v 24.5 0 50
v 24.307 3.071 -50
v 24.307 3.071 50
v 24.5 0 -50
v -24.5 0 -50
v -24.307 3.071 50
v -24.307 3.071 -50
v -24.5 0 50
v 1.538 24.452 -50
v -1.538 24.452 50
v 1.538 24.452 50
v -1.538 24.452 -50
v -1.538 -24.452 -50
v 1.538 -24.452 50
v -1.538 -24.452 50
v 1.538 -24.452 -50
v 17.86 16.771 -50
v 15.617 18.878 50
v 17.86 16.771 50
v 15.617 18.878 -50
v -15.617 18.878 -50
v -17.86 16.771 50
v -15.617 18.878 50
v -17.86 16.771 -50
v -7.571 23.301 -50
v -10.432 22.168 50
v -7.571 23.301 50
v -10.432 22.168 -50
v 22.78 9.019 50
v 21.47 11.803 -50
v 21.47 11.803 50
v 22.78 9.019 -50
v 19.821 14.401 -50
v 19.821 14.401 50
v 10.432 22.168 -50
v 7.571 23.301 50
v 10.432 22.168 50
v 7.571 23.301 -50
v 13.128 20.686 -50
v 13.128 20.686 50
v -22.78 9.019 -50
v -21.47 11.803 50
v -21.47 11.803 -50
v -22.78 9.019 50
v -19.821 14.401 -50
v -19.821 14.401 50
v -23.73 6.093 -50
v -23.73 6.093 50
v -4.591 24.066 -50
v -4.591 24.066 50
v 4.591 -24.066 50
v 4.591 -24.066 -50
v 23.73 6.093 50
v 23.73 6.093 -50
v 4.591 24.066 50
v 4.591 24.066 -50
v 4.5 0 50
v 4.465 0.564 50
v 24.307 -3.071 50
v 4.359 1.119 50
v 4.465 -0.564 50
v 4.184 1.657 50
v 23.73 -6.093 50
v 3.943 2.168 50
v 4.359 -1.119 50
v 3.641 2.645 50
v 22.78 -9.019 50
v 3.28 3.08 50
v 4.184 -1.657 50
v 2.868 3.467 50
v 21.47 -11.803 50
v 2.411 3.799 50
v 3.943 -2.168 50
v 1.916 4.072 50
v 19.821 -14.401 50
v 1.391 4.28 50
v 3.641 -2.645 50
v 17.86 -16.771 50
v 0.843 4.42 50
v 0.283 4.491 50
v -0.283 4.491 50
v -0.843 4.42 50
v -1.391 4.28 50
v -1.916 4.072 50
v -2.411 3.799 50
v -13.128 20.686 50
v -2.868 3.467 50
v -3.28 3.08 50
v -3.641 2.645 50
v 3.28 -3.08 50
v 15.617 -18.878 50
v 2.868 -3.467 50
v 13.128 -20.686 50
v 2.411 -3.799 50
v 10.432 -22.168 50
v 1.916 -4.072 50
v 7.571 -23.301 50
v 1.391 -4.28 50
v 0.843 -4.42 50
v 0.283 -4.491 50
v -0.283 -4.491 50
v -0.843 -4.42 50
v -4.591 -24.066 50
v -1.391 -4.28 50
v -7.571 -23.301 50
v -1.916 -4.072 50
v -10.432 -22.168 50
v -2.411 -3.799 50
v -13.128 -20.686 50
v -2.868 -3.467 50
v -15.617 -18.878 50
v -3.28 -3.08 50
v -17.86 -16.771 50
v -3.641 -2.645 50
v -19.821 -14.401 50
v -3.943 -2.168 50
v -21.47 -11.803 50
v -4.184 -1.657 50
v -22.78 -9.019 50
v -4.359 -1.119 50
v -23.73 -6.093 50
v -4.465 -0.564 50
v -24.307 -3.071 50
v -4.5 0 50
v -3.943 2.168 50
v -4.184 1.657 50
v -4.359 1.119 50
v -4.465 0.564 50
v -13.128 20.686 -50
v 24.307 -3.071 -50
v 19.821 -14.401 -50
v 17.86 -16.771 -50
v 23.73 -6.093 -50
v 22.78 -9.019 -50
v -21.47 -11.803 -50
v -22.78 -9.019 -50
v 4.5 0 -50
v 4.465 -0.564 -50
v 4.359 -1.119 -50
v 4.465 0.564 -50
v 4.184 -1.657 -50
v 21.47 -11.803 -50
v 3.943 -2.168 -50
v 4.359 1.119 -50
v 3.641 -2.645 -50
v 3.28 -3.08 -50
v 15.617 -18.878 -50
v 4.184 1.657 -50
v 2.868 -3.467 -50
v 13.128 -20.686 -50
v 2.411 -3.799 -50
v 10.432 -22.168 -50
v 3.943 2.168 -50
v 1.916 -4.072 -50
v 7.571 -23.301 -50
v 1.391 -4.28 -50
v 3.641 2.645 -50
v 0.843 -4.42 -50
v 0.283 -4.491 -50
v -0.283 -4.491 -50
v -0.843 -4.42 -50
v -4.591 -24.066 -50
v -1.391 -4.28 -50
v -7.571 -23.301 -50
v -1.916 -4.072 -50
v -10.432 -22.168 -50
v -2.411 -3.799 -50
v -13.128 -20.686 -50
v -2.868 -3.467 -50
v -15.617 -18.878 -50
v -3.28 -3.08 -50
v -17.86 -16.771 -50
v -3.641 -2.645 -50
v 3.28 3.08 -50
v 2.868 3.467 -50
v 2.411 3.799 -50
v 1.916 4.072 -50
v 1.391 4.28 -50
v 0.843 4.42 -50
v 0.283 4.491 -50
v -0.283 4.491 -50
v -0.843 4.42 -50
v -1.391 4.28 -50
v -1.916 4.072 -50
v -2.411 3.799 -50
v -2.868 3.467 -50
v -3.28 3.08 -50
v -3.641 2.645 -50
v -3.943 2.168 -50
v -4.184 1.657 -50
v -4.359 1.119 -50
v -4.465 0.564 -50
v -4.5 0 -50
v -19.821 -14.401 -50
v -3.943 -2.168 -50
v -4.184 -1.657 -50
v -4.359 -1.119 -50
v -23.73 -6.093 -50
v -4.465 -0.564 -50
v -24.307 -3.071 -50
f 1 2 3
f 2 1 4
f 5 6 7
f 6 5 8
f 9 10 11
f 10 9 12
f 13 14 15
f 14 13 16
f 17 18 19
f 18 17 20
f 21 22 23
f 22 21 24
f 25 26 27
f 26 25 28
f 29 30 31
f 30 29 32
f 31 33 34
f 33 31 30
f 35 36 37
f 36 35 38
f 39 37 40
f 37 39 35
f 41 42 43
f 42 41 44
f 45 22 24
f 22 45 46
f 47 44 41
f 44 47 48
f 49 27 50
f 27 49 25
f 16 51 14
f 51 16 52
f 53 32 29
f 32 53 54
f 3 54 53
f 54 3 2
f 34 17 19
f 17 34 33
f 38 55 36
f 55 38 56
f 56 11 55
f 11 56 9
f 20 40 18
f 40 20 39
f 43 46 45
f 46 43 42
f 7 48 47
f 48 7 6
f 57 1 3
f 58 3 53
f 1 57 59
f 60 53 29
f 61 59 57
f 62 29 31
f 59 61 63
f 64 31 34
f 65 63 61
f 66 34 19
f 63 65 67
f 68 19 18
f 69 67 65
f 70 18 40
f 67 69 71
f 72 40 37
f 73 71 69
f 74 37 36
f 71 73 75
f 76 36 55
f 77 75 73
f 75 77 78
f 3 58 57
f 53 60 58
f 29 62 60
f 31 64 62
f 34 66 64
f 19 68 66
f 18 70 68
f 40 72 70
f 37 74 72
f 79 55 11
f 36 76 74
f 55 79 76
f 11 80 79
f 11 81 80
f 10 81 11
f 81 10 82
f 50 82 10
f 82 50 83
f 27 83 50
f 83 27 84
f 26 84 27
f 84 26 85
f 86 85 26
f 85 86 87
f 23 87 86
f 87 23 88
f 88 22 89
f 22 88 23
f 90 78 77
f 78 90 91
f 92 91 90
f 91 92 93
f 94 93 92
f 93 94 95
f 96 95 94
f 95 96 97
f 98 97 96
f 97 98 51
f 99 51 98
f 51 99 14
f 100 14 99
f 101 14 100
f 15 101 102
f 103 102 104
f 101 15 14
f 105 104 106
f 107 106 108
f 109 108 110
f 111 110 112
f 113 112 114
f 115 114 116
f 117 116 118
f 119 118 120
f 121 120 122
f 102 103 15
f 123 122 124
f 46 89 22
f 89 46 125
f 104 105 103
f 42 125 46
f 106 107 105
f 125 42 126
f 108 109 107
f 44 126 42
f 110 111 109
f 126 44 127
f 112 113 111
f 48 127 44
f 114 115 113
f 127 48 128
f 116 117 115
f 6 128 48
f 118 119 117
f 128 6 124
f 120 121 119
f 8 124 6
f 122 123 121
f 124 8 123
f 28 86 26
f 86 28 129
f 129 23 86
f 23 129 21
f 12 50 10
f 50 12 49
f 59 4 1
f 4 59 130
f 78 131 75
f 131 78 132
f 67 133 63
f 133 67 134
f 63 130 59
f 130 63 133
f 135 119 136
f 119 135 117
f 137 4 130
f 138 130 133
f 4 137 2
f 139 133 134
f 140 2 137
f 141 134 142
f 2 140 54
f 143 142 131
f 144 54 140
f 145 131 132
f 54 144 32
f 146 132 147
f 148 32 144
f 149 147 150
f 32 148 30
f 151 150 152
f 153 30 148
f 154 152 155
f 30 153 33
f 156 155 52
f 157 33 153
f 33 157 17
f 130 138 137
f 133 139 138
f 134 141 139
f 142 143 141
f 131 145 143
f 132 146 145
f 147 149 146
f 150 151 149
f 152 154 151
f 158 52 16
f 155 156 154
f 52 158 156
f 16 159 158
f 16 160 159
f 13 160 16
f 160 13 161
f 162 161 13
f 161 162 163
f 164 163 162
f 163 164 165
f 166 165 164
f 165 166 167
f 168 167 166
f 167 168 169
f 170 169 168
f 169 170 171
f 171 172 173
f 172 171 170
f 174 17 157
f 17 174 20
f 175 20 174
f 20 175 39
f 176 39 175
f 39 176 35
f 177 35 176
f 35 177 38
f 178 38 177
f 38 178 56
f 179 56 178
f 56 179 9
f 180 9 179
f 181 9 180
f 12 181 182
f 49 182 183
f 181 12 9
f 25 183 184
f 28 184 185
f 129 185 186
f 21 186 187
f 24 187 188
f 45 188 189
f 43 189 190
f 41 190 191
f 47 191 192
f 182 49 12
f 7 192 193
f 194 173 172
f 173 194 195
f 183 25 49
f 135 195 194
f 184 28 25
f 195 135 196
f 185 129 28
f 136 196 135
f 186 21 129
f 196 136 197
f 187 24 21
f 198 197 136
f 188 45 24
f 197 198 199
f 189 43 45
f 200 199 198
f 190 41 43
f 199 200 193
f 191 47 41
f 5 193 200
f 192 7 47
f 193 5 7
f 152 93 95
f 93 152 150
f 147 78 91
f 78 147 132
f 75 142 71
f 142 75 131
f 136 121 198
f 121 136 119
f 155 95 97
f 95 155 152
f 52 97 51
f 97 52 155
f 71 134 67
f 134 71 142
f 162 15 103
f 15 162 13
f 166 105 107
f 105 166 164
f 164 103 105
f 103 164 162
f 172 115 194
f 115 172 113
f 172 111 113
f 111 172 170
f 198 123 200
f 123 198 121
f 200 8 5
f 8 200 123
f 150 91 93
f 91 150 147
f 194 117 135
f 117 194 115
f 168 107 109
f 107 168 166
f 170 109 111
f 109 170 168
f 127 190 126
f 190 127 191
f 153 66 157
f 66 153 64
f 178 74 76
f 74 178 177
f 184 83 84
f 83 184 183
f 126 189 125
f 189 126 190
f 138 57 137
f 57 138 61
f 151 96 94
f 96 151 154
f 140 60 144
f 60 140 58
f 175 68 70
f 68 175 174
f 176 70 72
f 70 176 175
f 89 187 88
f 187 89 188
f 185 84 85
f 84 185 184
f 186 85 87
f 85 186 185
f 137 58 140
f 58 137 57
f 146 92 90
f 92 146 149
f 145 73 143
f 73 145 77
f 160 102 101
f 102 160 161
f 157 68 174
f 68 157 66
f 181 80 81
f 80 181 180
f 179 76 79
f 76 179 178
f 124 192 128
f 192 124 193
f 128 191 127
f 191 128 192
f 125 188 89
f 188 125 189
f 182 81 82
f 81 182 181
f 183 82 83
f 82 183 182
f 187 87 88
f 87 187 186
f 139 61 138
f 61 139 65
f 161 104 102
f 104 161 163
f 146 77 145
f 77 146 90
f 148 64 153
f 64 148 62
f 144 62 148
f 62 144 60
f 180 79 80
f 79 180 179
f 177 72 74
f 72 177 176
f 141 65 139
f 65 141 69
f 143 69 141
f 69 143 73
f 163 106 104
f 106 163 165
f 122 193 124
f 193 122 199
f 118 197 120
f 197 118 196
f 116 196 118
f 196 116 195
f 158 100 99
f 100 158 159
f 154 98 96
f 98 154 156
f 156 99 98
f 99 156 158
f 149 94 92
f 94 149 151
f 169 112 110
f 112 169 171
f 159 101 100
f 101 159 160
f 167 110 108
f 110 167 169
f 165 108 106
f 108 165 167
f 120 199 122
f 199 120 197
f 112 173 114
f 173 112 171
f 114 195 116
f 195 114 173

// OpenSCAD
$fn = 50;


difference() {
	union() {
		translate(v = [0, 0, -50.0000000000]) {
			cylinder(h = 100, r = 24.5000000000);
		}
	}
	union() {
		translate(v = [0, 0, -100.0000000000]) {
			cylinder(h = 200, r = 4.5000000000);
		}
	}
}
